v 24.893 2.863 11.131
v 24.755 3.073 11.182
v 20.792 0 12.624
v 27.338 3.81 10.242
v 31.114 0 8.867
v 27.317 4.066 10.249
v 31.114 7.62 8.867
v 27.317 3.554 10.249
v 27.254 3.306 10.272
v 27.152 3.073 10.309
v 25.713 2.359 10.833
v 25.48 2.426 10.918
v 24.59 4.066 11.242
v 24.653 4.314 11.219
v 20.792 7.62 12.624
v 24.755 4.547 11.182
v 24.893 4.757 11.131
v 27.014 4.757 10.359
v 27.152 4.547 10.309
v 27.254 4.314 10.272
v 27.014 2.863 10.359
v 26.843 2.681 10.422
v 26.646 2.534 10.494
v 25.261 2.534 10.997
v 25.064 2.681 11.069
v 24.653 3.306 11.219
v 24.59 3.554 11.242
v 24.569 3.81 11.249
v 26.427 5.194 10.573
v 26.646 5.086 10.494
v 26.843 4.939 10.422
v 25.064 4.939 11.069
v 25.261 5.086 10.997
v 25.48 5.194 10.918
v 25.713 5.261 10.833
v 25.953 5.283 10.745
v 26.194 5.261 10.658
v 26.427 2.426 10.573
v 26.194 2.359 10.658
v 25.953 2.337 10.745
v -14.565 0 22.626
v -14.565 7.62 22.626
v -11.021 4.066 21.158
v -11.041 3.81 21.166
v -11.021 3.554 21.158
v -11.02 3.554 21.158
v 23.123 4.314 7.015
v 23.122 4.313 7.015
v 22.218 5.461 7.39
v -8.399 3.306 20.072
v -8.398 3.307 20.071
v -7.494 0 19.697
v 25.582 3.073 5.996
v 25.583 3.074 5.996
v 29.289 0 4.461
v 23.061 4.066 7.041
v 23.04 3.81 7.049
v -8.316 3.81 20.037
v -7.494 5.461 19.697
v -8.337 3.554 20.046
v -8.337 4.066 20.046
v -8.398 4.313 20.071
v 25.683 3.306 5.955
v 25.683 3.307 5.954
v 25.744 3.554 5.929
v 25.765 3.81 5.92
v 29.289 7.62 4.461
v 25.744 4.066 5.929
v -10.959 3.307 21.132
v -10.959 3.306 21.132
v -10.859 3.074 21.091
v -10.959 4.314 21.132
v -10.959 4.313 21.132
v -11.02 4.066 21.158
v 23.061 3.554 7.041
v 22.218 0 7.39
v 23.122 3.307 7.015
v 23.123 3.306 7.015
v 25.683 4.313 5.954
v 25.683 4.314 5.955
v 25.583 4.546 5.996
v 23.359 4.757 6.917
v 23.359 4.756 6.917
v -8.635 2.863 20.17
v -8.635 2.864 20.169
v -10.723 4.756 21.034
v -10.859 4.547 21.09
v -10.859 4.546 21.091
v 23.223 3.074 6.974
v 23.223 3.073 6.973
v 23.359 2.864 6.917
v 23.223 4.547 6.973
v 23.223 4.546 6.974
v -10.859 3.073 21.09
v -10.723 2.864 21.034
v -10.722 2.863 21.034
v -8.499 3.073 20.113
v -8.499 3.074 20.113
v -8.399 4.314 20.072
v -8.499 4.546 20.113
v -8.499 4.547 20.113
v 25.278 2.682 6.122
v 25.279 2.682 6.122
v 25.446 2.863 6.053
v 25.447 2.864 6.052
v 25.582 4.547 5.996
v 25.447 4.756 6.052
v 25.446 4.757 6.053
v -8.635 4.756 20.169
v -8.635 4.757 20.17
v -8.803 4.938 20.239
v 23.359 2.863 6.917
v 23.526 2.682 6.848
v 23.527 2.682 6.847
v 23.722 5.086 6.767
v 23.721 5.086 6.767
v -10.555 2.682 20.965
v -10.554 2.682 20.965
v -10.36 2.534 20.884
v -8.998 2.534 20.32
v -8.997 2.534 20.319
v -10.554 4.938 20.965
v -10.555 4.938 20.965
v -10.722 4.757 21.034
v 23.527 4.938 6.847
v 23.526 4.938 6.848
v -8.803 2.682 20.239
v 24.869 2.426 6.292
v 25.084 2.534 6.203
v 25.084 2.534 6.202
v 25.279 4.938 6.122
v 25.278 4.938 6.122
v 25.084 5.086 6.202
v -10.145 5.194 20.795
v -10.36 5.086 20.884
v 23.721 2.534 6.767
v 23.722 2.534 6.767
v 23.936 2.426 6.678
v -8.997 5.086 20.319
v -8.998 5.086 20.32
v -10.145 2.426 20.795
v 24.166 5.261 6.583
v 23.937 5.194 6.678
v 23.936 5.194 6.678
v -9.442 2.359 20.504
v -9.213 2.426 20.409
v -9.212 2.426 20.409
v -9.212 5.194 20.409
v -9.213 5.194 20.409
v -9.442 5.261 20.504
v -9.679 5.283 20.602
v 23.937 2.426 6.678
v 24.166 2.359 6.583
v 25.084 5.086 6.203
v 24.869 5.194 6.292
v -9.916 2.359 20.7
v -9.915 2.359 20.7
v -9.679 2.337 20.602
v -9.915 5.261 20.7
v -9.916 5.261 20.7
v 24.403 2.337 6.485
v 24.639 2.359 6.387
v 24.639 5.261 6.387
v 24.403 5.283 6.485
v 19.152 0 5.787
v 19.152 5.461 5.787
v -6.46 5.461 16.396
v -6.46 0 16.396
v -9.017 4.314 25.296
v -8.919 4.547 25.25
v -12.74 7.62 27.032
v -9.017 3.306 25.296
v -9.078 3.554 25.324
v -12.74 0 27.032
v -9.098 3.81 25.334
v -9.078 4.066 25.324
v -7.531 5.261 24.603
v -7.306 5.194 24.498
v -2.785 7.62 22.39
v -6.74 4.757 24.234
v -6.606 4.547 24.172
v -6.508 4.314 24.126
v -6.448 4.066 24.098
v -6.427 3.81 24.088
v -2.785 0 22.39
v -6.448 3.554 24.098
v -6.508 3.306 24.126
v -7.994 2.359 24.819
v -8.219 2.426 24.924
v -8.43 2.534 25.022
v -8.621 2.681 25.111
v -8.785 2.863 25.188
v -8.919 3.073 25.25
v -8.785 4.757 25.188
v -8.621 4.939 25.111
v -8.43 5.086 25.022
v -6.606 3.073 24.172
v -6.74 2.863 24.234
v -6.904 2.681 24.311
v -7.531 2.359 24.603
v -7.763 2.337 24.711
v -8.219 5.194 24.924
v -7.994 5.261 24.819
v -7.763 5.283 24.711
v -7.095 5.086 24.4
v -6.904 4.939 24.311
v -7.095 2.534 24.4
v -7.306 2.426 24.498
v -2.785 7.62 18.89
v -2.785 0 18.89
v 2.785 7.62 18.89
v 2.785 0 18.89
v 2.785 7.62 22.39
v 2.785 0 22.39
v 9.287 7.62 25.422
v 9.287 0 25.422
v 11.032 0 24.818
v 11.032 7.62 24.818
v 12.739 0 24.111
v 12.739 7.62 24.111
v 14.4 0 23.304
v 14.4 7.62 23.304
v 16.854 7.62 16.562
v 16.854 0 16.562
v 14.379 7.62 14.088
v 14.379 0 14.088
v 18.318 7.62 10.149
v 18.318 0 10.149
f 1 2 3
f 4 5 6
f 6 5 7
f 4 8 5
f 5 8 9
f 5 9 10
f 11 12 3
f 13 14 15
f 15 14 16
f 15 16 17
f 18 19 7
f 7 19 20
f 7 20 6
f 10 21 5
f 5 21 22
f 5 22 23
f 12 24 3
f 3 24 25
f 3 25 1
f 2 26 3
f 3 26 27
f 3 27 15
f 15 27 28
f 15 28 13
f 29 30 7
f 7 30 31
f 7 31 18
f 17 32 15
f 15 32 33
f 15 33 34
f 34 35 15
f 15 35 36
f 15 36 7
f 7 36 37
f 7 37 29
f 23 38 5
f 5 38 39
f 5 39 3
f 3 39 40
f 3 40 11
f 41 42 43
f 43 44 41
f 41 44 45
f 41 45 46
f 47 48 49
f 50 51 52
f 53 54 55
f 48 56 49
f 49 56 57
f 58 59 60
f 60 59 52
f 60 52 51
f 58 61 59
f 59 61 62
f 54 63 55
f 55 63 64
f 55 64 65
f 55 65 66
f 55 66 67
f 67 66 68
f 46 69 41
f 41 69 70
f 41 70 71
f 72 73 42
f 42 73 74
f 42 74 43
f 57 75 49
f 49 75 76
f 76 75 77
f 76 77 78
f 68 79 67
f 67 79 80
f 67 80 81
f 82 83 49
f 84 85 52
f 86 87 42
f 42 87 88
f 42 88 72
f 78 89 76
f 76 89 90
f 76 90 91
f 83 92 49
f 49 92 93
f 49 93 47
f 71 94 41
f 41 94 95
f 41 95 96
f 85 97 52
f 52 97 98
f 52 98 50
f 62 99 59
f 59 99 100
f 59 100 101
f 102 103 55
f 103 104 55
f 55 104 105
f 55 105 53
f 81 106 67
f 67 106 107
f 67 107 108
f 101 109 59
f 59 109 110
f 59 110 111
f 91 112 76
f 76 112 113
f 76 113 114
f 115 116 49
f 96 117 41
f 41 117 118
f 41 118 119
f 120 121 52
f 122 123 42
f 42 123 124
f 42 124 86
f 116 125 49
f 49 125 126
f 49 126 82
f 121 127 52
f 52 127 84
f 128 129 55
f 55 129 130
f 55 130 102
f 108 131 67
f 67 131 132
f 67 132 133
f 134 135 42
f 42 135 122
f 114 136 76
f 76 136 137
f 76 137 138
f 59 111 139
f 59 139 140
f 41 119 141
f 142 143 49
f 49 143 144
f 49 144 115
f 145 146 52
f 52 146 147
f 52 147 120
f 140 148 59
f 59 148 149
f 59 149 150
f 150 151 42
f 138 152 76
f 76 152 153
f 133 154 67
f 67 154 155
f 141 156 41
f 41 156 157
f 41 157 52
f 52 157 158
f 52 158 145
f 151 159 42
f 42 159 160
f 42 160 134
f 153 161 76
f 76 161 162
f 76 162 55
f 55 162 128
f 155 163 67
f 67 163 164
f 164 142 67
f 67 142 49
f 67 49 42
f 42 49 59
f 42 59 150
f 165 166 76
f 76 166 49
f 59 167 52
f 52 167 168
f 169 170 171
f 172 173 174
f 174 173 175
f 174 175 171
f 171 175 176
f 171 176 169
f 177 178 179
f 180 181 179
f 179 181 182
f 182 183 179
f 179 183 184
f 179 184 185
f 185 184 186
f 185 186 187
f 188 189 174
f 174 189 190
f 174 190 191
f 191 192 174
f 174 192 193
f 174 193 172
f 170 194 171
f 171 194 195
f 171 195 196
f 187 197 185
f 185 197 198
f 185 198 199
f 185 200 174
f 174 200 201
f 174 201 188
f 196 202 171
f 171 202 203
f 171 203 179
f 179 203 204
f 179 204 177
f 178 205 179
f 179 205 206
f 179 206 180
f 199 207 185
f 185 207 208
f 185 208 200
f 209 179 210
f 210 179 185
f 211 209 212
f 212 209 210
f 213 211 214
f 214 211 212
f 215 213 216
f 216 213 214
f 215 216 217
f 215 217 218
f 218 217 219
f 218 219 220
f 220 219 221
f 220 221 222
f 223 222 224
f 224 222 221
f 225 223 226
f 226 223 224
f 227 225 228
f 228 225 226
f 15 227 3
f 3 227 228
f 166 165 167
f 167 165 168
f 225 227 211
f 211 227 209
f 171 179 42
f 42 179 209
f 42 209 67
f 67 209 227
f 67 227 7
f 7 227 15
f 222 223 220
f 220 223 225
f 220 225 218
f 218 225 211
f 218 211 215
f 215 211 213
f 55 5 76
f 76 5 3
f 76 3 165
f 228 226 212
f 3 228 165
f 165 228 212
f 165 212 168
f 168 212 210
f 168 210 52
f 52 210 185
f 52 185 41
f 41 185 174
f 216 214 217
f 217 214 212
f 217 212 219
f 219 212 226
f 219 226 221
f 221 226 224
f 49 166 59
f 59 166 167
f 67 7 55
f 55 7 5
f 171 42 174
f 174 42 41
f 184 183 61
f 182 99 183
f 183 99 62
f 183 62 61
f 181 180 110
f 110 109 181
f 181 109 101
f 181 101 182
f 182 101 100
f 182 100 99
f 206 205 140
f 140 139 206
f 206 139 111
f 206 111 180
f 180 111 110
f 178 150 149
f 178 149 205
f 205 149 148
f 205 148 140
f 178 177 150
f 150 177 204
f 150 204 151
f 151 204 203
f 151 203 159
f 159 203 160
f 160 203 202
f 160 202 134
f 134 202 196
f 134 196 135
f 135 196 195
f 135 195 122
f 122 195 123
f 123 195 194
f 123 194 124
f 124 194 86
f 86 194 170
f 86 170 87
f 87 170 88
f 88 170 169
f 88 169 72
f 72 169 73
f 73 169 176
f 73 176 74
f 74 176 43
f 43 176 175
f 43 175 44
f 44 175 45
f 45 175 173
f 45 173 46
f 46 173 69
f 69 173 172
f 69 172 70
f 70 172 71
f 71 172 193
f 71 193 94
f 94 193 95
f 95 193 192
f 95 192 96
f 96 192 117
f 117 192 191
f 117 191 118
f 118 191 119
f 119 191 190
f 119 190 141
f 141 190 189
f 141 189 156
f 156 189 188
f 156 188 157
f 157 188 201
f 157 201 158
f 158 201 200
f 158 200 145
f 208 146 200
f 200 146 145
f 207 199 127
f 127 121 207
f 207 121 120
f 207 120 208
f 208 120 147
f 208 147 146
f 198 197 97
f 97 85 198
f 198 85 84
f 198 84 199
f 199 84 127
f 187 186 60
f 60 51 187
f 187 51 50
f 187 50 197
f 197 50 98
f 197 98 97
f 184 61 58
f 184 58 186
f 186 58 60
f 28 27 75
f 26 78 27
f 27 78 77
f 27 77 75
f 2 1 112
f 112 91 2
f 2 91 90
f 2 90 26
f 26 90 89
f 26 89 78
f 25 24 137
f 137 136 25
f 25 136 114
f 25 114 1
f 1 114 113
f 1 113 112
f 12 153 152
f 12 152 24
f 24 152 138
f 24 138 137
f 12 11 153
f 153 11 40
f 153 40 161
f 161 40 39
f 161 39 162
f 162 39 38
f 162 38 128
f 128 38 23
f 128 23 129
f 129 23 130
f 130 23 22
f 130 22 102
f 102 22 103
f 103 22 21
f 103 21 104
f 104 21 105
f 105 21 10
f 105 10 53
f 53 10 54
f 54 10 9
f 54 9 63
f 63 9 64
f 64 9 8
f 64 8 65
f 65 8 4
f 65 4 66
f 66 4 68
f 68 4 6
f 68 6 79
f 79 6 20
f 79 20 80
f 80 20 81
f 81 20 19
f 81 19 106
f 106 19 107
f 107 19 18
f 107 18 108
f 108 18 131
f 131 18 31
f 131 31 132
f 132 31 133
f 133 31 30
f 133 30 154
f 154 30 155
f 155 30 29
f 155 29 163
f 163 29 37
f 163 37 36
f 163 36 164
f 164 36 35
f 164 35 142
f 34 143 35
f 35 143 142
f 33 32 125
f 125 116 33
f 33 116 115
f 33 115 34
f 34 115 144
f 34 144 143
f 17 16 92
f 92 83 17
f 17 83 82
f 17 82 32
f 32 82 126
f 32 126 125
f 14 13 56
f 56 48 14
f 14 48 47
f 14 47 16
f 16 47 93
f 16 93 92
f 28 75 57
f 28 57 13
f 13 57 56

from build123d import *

# Parameters (mm, degrees)
BOSS_EXTRUDE2_DEPTH = 7.62
CUT_EXTRUDE3_DEPTH  = 2.159
BOSS_EXTRUDE5_DEPTH = 7.62
SKETCH26_R          = 1.4732
CUT_EXTRUDE4_DEPTH  = 28.462559415


with BuildPart() as part:
    # Sketch2 → Boss-Extrude2 (new body)
    with BuildSketch(Plane(origin=(0, 0, 0), x_dir=(1, 0, 0), z_dir=(0, 1, 0))):
        with BuildLine():
            Line((-2.785, -18.89), (-2.785, -22.39))
            Line((-2.785, -22.39), (-9.28719522, -25.422023426))
            Line((-9.28719522, -25.422023426), (-6.46004312, -16.395532832))
            Line((-6.46004312, -16.395532832), (19.152394428, -5.786513834))
            Line((19.152394428, -5.786513834), (27.534185559, -10.170108122))
            Line((27.534185559, -10.170108122), (20.792474901, -12.62389013))
            Line((20.792474901, -12.62389013), (18.317601167, -10.149016395))
            Line((18.317601167, -10.149016395), (16.348308781, -12.118308781))
            Line((16.348308781, -12.118308781), (14.379016395, -14.087601167))
            Line((14.379016395, -14.087601167), (16.85389013, -16.562474901))
            Line((16.85389013, -16.562474901), (14.400108122, -23.304185559))
            ThreePointArc((14.400108122, -23.304185559), (11.890895434, -24.477161025), (9.28719522, -25.422023426))
            Line((9.28719522, -25.422023426), (2.785, -22.39))
            Line((2.785, -22.39), (2.785, -18.89))
            Line((2.785, -18.89), (0, -18.89))
            Line((0, -18.89), (-2.785, -18.89))
        make_face()
    extrude(amount=BOSS_EXTRUDE2_DEPTH)

    # Sketch15 → Cut-Extrude3 (cut)
    with BuildSketch(Plane(origin=(0, 7.62, 0), x_dir=(-1, 0, 0), z_dir=(0, 1, 0))):
        Polygon((-22.217905164, 7.389745786), (7.494030365, 19.696832446), (6.459424884, 16.393558936), (-19.150561514, 5.785555238), align=None)
    extrude(amount=-CUT_EXTRUDE3_DEPTH, mode=Mode.SUBTRACT)

    # Sketch22 → Boss-Extrude5 (add)
    with BuildSketch(Plane(origin=(0, 7.62, 0), x_dir=(1, 0, 0), z_dir=(0, 1, 0))):
        Polygon((-9.28719522, -25.422023426), (-7.494030365, -19.696832446), (-14.565383767, -22.625882929), (-12.740227889, -27.032199003), align=None)
        Polygon((31.114414444, -8.867011376), (27.534185559, -10.170108122), (22.217905164, -7.389745786), (29.289258566, -4.460695302), align=None)
    extrude(amount=-BOSS_EXTRUDE5_DEPTH)

    # Sketch26 → Cut-Extrude4 (cut, through all)
    with BuildSketch(Plane(origin=(8.078449287, 0, 17.324290403), x_dir=(0.9063077870366507, 0, -0.422618261740698), z_dir=(0.422618261740698, 0, 0.9063077870366508))):
        with Locations((-17.478679383, 3.81)):
            Circle(SKETCH26_R)
    cut_extrude4 = extrude(amount=-CUT_EXTRUDE4_DEPTH, mode=Mode.SUBTRACT)

    # Mirror2: Cut-Extrude4 across plane
    add(cut_extrude4.mirror(Plane(origin=(9.626416417, 7.62, 19.01022507), x_dir=(0.38268343236517965, 0, 0.9238795325112495), z_dir=(-0.9238795325112495, 0, 0.38268343236517965))), mode=Mode.SUBTRACT)


solid = part.part
